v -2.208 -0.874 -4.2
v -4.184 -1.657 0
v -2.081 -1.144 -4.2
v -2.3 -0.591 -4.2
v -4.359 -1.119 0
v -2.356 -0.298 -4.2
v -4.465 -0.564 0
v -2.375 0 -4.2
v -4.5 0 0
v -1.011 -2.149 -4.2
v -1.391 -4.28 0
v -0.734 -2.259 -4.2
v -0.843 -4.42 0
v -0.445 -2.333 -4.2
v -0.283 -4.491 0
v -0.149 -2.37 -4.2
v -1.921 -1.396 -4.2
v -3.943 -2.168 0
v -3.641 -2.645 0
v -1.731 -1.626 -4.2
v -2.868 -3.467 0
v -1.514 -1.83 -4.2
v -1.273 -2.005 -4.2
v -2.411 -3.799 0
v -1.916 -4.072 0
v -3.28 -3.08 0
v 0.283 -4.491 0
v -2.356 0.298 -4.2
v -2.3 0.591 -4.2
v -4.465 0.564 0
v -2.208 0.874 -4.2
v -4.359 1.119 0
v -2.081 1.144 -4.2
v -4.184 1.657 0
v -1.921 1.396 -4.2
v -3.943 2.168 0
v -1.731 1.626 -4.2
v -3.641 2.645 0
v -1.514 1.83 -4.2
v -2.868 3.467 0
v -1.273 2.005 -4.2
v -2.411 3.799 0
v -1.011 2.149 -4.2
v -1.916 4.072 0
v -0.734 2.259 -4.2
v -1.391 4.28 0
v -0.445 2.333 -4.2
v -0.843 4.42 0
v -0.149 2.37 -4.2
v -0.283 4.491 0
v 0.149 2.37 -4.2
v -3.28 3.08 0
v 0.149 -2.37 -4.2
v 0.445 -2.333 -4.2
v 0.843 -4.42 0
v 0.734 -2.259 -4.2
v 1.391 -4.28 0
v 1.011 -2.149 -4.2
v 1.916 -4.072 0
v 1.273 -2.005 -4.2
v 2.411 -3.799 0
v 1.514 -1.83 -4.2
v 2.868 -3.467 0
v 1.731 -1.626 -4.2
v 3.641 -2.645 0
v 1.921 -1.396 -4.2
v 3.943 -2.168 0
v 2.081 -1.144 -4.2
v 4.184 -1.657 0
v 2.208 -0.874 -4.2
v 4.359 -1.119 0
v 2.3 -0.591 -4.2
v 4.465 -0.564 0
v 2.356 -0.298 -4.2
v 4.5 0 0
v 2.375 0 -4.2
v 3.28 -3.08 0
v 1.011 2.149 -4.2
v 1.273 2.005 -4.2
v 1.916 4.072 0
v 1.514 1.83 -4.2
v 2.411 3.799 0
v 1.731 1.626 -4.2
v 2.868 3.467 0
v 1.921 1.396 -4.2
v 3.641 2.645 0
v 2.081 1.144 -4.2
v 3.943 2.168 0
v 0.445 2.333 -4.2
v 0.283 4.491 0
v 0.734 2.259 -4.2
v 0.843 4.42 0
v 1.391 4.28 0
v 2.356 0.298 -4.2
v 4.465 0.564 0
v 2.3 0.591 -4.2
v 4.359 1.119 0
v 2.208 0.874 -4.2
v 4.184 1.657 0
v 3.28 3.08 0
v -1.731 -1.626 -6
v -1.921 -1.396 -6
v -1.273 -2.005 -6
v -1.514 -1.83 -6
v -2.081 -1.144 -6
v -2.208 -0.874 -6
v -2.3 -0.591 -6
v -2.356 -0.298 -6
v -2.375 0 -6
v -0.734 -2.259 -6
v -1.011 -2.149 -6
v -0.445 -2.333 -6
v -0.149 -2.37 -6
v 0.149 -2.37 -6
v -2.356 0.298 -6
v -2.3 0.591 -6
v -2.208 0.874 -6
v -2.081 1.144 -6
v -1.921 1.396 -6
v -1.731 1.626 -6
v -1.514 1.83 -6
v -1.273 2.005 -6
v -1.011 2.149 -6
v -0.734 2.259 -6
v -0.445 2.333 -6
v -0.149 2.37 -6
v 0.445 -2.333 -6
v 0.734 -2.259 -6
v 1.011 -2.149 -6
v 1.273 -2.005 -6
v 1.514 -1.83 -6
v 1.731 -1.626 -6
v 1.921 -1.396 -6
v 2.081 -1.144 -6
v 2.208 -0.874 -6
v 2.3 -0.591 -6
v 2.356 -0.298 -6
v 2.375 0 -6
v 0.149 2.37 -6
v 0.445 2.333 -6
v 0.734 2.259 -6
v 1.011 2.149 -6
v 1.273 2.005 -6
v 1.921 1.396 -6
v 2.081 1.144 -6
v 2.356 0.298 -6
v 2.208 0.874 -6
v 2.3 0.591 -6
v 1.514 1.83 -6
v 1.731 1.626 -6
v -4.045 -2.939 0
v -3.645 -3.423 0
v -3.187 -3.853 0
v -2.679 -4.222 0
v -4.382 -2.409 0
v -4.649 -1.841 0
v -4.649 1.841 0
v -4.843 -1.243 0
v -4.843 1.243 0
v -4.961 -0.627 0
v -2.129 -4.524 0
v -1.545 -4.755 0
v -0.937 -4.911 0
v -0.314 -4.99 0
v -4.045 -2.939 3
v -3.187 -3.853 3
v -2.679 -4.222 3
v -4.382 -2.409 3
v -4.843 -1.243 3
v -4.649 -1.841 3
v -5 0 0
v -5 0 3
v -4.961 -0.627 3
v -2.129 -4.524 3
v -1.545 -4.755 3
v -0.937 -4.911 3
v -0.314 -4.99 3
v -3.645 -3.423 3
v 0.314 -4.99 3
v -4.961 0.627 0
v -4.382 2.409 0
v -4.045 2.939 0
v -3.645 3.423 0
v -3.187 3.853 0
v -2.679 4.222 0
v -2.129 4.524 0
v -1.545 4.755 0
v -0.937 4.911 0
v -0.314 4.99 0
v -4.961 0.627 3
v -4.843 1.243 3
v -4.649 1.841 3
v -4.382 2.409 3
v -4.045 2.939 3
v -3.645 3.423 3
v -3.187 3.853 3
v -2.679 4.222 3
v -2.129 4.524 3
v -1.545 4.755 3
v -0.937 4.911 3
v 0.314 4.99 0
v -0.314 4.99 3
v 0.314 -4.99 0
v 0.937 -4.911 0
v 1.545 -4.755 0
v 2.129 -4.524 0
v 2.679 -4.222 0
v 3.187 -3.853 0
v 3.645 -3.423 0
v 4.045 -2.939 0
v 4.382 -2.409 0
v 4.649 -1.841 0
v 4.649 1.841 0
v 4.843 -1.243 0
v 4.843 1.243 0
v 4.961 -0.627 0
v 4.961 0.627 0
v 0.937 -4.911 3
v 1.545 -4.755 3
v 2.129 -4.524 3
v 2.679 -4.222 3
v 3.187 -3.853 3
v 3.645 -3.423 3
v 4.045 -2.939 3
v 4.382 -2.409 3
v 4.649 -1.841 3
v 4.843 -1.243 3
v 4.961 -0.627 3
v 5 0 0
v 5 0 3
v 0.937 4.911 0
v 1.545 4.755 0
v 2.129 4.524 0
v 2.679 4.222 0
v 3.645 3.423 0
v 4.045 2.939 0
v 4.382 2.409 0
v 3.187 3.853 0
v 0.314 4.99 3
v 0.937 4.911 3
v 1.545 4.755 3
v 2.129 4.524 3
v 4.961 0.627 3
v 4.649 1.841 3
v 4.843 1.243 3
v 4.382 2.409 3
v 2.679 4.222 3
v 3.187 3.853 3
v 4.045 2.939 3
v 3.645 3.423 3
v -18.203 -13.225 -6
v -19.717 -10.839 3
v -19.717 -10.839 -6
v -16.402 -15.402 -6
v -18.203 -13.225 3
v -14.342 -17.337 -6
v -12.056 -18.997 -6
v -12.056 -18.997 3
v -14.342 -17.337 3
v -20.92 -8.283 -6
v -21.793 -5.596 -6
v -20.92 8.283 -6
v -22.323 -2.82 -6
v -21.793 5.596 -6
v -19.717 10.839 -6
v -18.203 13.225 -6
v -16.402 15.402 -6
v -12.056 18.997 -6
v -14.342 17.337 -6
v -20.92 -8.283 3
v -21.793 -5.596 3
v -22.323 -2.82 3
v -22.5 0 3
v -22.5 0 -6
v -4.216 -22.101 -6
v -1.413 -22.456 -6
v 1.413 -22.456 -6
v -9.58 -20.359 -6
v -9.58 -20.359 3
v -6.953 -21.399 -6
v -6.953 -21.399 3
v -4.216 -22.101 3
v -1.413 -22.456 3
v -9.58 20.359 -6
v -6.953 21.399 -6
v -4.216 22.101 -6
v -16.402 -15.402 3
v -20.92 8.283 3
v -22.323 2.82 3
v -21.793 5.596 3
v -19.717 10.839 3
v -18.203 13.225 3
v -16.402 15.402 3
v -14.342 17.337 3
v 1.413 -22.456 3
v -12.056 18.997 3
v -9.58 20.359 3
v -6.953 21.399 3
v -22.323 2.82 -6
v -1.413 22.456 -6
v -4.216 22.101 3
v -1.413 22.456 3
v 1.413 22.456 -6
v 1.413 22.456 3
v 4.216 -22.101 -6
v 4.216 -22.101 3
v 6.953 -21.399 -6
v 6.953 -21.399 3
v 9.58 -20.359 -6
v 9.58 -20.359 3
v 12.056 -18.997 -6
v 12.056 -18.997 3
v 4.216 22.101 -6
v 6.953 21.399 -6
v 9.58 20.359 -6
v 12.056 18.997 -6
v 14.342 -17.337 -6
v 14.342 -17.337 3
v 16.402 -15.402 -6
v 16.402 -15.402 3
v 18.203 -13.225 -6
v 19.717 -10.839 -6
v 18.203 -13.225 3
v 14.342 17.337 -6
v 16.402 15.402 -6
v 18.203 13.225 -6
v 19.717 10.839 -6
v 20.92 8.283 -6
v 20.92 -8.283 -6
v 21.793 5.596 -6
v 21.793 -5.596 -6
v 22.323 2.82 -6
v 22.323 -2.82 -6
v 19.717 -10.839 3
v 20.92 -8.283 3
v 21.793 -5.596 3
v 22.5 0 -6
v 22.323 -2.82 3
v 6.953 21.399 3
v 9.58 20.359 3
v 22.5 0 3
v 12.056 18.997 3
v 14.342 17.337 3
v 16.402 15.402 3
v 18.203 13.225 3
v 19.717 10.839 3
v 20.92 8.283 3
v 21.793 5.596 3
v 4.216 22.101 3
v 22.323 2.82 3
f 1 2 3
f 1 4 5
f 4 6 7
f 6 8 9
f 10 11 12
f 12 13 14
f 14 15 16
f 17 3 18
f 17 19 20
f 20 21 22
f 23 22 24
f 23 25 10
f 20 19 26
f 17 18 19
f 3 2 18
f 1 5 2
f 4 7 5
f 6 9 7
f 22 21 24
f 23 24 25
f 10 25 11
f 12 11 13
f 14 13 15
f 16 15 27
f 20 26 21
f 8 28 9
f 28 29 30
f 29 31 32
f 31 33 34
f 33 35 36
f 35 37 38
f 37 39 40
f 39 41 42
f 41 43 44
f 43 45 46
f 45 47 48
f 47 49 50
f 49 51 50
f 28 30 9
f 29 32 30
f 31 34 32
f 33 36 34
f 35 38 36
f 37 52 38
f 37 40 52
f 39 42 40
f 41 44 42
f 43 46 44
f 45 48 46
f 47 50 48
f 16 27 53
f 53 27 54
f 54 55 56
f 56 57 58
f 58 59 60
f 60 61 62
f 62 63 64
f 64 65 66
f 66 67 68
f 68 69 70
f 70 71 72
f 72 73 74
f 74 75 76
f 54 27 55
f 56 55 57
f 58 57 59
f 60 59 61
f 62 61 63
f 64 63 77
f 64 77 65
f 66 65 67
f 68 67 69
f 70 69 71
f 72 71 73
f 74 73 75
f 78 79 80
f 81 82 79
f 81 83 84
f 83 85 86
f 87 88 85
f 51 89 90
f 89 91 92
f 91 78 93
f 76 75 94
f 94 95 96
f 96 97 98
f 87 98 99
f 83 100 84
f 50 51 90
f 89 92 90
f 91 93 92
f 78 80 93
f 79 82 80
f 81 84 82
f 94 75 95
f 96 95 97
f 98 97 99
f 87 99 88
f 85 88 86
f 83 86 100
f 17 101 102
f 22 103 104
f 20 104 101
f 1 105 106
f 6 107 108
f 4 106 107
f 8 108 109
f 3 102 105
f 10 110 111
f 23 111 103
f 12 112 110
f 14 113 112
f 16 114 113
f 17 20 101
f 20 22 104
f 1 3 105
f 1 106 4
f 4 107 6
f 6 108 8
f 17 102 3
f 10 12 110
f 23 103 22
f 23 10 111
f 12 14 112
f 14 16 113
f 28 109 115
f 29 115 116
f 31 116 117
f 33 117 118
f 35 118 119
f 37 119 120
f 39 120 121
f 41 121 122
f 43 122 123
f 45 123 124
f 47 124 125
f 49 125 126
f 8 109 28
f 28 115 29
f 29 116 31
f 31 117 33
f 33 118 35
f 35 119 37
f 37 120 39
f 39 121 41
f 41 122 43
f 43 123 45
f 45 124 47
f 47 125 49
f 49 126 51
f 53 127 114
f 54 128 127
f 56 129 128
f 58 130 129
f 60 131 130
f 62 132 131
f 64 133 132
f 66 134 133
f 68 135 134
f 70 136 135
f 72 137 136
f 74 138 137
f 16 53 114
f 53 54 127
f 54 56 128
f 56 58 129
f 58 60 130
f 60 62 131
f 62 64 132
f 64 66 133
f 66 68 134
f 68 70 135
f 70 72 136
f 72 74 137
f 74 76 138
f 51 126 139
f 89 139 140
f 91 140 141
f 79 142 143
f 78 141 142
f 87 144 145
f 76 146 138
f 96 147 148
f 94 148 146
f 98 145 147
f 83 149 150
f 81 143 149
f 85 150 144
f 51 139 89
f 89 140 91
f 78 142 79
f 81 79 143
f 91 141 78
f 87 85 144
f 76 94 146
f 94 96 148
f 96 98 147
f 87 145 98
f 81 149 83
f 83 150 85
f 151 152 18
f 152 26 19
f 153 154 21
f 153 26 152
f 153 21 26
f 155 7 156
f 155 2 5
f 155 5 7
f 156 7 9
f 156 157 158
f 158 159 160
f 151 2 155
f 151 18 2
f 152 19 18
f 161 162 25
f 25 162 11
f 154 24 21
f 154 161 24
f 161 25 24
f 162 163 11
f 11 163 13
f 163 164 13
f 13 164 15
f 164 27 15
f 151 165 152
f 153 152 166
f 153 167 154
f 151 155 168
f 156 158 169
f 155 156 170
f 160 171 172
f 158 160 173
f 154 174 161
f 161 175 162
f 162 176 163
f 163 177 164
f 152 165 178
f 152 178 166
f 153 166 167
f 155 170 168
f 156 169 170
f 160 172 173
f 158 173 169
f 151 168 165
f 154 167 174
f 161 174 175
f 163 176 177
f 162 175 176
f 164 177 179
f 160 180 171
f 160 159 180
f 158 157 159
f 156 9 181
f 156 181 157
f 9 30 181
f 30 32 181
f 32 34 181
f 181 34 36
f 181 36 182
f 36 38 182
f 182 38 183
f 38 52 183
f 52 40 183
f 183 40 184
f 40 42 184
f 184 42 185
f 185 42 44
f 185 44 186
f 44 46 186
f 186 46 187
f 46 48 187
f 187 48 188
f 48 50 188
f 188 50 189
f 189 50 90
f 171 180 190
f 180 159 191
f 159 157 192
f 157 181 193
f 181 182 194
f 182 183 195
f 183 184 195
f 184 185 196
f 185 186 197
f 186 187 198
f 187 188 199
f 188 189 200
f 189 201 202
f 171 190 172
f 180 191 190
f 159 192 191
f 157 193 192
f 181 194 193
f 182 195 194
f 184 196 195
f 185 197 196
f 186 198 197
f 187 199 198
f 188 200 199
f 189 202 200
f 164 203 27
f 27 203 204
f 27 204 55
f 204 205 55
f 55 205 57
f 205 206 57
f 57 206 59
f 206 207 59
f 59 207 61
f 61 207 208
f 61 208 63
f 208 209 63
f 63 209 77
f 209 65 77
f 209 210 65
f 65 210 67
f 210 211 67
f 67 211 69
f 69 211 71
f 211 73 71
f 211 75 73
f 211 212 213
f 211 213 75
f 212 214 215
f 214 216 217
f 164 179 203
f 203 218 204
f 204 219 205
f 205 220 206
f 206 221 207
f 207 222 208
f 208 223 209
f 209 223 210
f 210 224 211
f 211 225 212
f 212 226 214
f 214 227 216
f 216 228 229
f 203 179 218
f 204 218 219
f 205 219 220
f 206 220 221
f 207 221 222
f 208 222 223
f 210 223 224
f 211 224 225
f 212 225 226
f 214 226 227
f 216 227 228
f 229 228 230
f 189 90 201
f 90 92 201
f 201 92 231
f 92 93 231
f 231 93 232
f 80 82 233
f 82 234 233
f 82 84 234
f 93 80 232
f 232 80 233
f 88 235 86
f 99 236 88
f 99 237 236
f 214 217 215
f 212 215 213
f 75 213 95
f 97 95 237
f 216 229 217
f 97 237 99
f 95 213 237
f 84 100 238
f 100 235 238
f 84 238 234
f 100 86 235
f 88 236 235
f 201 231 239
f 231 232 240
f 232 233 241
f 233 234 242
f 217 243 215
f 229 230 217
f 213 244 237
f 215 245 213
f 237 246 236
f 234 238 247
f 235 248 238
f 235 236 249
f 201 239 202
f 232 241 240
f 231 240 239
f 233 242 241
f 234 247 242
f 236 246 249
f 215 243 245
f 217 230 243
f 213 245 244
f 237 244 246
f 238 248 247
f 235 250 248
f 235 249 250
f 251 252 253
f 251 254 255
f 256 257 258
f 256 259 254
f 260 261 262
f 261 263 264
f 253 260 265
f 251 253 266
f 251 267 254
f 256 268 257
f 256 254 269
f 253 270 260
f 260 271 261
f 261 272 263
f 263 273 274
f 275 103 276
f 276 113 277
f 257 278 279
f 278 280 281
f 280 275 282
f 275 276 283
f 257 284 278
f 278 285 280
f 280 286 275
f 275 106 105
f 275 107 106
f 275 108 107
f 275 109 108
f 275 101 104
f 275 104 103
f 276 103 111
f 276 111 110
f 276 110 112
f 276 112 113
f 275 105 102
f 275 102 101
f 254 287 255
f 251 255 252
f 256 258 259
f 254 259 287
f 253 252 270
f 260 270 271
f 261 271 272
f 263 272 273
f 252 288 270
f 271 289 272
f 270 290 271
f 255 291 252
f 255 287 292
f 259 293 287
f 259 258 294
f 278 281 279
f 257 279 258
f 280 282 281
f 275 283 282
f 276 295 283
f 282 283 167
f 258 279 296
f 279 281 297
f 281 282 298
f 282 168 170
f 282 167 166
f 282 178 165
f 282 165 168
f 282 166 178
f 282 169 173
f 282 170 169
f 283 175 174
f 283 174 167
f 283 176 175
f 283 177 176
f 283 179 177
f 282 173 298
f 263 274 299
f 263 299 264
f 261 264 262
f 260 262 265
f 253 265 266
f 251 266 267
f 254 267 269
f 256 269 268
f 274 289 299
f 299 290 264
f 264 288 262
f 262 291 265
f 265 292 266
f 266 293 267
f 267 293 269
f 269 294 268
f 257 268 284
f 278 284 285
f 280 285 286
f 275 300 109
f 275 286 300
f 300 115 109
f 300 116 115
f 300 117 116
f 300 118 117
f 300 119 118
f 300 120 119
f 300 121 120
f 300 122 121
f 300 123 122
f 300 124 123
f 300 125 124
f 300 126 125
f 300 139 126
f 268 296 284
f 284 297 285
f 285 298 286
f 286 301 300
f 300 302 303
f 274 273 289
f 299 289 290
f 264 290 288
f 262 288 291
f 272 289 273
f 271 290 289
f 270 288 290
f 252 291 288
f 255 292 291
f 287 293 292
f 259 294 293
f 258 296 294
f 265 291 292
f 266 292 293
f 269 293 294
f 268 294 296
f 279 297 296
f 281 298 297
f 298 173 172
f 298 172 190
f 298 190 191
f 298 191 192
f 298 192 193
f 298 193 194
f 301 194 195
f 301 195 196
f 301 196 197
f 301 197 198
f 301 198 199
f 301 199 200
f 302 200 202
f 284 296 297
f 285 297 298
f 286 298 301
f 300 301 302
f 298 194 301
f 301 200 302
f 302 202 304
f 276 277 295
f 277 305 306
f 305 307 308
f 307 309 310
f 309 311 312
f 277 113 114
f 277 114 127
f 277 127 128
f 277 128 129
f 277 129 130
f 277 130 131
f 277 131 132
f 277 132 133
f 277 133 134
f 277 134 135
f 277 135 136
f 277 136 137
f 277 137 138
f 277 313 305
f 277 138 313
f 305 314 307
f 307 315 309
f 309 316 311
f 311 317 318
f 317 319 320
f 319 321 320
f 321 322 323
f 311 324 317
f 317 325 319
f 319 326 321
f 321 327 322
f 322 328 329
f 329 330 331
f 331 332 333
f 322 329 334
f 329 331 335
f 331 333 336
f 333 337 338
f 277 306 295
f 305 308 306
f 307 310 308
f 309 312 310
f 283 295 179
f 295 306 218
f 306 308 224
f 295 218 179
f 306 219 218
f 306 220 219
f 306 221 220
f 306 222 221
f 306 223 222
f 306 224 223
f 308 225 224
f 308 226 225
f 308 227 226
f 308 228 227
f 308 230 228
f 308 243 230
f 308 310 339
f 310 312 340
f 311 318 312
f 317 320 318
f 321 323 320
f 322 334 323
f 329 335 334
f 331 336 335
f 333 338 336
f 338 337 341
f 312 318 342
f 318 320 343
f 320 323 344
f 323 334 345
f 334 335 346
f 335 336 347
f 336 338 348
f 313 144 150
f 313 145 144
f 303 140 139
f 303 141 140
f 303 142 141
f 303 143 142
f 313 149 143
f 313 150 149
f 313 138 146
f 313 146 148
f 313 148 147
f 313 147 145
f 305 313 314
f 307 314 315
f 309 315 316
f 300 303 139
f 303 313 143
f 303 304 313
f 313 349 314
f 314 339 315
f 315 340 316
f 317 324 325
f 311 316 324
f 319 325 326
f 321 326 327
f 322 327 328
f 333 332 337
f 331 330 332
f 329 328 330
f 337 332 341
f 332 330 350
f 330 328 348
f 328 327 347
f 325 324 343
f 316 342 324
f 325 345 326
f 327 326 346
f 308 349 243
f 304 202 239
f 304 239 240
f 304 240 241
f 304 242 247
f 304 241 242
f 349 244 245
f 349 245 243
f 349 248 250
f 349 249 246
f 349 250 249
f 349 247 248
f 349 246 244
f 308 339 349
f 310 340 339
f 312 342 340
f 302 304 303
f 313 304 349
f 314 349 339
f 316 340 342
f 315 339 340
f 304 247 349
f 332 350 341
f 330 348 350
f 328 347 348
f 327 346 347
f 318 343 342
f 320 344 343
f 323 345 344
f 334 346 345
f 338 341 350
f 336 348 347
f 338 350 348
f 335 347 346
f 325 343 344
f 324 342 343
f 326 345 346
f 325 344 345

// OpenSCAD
$fn = 50;


difference() {
	union() {
		translate(v = [0, 0, -6.0000000000]) {
			cylinder(h = 9, r = 22.5000000000);
		}
	}
	union() {
		translate(v = [0, 0, 0]) {
			rotate(a = [0, 0, 0]) {
				difference() {
					union() {
						translate(v = [0, 0, -9.0000000000]) {
							cylinder(h = 9, r = 2.2500000000);
						}
						translate(v = [0, 0, -4.2000000000]) {
							cylinder(h = 4.2000000000, r1 = 2.3750000000, r2 = 4.5000000000);
						}
						translate(v = [0, 0, -9.0000000000]) {
							cylinder(h = 9, r = 2.3750000000);
						}
						translate(v = [0, 0, -9.0000000000]) {
							cylinder(h = 9, r = 2.2500000000);
						}
					}
					union();
				}
			}
		}
		#cylinder(h = 3, r = 5.0000000000);
	}
}
